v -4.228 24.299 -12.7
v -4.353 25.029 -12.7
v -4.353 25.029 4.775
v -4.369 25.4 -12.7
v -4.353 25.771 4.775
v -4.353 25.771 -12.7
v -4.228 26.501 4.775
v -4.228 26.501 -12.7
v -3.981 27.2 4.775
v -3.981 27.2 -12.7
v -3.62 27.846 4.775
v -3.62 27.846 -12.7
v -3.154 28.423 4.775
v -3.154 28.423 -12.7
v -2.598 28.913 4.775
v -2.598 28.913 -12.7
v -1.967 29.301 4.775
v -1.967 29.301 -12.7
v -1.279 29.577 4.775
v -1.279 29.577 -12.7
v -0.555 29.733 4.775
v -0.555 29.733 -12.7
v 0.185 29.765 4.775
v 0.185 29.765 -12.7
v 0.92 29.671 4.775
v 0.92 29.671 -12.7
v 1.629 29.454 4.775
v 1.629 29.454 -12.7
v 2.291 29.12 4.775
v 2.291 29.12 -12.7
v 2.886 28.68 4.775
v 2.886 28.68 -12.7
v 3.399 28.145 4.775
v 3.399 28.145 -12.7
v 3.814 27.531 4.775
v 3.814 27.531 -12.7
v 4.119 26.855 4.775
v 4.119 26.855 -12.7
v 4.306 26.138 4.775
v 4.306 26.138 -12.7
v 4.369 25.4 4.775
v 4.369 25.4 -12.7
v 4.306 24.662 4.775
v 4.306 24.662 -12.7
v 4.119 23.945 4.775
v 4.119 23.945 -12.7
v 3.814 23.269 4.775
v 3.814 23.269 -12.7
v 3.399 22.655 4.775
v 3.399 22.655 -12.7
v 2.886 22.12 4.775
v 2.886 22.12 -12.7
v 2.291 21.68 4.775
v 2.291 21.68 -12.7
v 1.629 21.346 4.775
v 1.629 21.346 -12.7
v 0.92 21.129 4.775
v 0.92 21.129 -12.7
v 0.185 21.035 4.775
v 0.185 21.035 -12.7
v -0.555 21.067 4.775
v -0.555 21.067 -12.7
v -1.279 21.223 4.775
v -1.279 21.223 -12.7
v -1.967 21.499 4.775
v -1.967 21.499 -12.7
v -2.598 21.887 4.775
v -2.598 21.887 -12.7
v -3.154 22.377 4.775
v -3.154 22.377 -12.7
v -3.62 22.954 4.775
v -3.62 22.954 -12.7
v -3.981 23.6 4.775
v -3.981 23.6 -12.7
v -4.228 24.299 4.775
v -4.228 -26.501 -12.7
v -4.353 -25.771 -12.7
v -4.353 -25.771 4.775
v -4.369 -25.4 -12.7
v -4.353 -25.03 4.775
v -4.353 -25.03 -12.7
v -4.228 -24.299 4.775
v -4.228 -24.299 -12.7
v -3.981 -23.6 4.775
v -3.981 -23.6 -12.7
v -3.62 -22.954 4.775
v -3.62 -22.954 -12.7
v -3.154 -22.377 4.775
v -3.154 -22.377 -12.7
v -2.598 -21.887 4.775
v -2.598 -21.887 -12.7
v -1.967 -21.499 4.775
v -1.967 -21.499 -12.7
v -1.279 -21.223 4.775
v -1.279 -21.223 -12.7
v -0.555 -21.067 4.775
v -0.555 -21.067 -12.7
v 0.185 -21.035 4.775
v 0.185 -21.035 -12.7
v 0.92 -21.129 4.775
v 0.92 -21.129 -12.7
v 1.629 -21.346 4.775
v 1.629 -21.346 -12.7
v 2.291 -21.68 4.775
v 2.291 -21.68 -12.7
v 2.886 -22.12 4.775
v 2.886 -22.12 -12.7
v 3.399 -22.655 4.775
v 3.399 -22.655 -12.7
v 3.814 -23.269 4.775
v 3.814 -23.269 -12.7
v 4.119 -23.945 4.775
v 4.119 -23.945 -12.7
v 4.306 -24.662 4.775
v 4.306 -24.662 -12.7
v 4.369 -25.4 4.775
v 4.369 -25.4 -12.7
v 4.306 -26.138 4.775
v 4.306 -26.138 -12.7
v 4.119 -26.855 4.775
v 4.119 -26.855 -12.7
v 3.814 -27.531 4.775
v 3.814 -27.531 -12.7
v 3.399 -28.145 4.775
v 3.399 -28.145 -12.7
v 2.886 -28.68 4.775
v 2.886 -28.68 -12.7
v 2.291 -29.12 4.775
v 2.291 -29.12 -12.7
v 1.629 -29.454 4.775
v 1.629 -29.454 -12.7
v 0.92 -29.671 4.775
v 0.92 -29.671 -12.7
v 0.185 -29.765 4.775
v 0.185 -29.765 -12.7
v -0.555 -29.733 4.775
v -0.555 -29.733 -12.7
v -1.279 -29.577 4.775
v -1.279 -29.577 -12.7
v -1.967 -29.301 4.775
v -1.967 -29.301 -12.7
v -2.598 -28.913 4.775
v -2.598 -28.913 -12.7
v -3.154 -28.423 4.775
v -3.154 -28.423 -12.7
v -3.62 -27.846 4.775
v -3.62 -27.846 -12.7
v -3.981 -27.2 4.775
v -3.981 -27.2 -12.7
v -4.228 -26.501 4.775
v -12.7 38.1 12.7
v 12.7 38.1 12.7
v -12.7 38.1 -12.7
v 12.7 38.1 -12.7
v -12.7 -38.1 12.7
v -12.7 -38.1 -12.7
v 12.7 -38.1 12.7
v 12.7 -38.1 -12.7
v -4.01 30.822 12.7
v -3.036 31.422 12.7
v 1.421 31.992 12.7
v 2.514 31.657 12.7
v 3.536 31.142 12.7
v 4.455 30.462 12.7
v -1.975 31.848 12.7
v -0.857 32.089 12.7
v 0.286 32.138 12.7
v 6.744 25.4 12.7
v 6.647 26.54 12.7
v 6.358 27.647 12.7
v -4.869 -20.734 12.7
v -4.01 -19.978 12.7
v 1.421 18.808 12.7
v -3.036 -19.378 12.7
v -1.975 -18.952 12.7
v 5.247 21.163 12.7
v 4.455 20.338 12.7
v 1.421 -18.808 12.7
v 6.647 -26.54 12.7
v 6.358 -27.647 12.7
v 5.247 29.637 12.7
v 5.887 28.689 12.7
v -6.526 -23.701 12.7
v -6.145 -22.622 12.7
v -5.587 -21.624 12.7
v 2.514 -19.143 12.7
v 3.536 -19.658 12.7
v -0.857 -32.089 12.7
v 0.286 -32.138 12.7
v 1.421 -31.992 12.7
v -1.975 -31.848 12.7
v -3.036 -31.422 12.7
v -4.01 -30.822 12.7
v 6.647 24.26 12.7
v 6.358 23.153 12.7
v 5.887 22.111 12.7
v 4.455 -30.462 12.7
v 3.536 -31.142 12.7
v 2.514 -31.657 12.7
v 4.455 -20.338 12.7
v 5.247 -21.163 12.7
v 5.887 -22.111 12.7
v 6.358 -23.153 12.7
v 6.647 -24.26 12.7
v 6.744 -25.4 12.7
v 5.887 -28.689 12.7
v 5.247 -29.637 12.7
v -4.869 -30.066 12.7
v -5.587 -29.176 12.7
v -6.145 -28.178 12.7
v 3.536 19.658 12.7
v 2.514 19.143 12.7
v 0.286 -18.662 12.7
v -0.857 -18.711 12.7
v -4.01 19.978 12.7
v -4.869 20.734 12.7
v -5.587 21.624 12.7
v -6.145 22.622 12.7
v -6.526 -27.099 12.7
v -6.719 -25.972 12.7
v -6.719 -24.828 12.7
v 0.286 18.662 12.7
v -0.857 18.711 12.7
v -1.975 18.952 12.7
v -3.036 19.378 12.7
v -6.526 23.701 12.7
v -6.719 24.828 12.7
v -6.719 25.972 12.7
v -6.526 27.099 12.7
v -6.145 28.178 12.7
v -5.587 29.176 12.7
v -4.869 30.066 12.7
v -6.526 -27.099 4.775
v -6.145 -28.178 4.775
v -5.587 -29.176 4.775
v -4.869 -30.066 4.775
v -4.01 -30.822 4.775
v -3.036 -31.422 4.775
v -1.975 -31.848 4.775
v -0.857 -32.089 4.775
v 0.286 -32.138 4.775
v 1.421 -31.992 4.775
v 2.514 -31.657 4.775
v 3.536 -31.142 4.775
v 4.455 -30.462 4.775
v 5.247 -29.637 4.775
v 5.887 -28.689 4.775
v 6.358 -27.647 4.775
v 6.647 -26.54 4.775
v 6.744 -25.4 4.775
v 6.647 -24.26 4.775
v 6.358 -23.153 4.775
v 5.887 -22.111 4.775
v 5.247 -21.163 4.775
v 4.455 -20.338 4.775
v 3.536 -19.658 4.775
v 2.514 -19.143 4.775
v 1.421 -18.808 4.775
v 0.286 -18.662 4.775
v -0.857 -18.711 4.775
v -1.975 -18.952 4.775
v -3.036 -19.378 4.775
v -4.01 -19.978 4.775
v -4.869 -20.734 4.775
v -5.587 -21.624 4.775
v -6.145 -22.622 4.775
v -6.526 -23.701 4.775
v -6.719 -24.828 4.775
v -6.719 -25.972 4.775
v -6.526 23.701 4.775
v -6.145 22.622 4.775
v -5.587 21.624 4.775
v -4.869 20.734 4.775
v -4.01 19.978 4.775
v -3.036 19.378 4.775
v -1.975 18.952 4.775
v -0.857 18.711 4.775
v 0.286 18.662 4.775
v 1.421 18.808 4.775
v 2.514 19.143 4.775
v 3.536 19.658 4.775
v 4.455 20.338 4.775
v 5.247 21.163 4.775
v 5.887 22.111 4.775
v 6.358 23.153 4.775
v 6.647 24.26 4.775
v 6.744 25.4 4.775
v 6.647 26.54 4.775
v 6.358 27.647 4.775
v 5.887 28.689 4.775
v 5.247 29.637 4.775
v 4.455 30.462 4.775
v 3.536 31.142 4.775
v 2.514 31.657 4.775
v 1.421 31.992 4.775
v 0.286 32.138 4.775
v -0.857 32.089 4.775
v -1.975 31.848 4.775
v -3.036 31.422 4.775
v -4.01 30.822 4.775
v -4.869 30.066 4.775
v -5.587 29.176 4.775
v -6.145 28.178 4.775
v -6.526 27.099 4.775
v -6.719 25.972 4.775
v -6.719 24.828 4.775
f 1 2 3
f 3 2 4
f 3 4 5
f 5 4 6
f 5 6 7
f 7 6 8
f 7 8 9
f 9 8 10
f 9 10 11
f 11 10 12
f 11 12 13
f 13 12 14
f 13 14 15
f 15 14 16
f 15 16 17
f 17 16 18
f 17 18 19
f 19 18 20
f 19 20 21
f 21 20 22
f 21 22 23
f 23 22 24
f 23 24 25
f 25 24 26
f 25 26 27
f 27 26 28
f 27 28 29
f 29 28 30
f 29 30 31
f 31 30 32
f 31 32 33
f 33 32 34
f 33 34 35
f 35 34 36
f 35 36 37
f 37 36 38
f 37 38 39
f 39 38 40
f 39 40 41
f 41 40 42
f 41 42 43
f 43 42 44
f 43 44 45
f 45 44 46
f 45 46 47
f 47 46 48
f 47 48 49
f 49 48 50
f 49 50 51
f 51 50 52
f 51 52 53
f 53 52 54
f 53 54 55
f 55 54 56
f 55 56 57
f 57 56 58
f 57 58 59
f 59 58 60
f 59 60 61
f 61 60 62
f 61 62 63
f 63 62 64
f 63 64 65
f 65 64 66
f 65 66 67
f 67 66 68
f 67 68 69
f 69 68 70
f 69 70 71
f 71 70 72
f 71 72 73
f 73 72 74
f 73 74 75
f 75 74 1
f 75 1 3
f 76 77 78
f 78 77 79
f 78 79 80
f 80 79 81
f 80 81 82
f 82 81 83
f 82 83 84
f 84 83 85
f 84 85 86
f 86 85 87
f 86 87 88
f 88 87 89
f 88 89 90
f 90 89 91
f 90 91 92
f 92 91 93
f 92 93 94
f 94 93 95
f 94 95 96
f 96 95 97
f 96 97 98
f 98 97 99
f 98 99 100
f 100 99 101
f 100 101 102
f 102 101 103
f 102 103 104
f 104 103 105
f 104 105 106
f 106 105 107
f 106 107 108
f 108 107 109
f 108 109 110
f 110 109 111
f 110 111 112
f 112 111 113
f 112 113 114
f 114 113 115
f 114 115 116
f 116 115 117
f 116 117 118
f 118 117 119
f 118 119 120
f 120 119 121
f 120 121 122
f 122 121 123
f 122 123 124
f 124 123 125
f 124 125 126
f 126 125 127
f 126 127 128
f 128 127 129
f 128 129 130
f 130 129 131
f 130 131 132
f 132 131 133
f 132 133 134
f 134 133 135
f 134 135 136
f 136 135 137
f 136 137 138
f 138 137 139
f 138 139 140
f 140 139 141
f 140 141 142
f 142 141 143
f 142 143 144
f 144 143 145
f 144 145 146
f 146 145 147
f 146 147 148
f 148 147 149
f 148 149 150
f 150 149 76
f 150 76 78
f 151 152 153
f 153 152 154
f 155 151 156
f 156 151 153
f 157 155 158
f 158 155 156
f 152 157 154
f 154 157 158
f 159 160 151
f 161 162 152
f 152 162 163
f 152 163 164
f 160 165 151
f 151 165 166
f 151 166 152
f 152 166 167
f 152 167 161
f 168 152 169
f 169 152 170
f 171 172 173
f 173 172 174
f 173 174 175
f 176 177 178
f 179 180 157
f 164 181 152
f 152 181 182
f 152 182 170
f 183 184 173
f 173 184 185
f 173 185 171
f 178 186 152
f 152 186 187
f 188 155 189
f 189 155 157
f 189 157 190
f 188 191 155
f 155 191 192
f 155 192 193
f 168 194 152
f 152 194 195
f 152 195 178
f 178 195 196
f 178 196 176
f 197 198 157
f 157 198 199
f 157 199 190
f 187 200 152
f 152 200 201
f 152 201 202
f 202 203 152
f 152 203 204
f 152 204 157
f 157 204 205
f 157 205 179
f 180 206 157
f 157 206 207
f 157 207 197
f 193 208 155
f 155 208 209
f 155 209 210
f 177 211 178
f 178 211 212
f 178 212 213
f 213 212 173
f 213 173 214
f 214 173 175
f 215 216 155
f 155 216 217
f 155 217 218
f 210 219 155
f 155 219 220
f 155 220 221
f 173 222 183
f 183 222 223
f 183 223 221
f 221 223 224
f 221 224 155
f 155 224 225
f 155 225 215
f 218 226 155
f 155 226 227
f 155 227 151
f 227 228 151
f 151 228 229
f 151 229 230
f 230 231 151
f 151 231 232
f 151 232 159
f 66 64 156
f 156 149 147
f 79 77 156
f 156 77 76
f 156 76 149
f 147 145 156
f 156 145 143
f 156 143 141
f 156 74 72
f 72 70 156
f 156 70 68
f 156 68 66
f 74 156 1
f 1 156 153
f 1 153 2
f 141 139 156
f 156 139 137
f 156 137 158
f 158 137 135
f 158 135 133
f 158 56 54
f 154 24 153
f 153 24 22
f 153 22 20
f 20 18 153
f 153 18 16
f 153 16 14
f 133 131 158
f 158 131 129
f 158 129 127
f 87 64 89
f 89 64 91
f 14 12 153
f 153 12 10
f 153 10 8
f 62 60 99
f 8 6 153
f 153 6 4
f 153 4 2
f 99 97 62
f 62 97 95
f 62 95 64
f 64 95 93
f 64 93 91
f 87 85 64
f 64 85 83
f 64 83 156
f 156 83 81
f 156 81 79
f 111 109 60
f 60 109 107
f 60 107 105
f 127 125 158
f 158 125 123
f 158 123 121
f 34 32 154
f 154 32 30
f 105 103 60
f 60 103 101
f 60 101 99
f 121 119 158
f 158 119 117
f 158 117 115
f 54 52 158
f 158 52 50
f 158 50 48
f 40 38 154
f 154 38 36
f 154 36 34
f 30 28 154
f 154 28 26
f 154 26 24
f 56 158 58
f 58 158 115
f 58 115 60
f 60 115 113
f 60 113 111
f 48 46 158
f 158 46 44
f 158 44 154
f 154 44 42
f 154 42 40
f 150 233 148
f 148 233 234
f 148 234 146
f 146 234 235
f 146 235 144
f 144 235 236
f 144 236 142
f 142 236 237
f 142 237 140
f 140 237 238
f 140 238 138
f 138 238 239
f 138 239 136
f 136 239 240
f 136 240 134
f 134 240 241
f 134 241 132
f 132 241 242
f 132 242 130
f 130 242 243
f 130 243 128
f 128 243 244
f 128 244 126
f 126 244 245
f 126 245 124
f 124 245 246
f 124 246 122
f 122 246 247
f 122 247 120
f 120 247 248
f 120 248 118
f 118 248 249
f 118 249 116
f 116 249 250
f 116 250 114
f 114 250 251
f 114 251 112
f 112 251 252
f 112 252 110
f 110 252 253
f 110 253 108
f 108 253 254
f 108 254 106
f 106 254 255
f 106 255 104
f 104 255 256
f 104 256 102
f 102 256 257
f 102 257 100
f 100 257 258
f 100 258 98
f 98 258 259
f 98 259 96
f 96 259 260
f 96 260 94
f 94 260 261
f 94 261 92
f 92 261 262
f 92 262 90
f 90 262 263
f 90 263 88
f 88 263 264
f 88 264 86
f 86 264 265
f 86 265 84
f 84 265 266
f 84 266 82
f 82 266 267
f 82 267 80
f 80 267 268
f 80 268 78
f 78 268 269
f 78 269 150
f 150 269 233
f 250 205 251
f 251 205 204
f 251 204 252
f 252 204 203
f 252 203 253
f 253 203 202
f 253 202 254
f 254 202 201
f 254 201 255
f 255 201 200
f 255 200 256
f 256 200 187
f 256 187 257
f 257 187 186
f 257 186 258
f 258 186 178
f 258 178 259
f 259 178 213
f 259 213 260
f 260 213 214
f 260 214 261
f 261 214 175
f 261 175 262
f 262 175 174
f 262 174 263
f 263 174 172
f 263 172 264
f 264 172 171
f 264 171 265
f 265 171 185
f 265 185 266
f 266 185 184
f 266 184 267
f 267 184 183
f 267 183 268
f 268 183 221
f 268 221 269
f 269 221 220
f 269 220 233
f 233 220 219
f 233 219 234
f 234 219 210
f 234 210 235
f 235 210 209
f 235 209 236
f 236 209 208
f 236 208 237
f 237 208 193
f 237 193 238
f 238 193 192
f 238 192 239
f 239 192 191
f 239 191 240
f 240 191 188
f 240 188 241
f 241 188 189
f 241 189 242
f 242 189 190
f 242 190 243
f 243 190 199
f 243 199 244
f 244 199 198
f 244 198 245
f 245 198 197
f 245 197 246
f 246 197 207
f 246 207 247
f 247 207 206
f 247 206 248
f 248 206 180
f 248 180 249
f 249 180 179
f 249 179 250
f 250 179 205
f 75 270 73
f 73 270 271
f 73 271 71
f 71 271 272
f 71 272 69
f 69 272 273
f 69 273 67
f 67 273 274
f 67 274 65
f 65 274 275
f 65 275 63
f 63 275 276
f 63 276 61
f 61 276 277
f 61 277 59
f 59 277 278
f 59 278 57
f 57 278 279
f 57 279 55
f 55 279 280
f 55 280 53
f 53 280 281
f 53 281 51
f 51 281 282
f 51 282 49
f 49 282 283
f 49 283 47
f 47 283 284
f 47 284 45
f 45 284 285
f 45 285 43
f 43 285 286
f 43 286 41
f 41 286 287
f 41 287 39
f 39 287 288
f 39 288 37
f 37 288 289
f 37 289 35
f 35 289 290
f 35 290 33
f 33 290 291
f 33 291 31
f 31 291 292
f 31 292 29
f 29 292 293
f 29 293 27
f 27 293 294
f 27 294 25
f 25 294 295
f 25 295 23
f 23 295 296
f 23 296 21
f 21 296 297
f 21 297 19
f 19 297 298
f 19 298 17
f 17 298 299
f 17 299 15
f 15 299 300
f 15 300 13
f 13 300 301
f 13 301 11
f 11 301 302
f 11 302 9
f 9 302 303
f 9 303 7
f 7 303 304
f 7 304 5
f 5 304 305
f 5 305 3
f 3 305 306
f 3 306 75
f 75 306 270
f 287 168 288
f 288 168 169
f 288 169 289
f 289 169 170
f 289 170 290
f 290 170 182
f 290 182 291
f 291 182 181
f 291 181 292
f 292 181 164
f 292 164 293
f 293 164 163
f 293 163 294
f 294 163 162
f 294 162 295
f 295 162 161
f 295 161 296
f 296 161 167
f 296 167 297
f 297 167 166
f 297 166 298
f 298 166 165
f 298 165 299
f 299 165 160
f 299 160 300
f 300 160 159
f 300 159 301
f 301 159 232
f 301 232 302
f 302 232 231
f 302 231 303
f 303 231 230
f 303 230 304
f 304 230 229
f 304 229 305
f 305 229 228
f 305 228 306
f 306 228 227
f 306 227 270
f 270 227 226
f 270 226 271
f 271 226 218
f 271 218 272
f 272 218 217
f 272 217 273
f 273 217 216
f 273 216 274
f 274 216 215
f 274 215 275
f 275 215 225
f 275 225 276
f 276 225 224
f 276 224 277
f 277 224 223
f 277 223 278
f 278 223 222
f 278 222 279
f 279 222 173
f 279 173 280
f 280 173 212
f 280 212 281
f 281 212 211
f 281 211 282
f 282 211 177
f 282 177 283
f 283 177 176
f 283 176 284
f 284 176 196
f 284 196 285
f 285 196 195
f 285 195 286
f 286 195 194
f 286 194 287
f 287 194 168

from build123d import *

# Parameters (mm, degrees)
SKETCH1_W                                         = 76.2
SKETCH1_H                                         = 25.4
BOSS_EXTRUDE1_DEPTH                               = 12.7
CBORE_FOR_5_16_SOCKET_HEAD_CAP_SCREW1_D           = 8.7376
CBORE_FOR_5_16_SOCKET_HEAD_CAP_SCREW1_DEPTH       = 25.4
CBORE_FOR_5_16_SOCKET_HEAD_CAP_SCREW1_CBORE_D     = 13.4874
CBORE_FOR_5_16_SOCKET_HEAD_CAP_SCREW1_CBORE_DEPTH = 7.9248
CBORE_FOR_5_16_SOCKET_HEAD_CAP_SCREW1_TIP         = 2.625039872


with BuildPart() as part:
    # Sketch1 → Boss-Extrude1 (new, symmetric)
    with BuildSketch(Plane(origin=(0, 0, 0), x_dir=(0, 1, 0), z_dir=(0, 0, 1))):
        Rectangle(SKETCH1_W, SKETCH1_H)
    extrude(amount=BOSS_EXTRUDE1_DEPTH, both=True)

    # CBORE for 5/16 Socket Head Cap Screw1
    with Locations(Plane.XY.offset(12.7)):
        with Locations((0, -25.4), (0, 25.4)):
            CounterBoreHole(CBORE_FOR_5_16_SOCKET_HEAD_CAP_SCREW1_D / 2, CBORE_FOR_5_16_SOCKET_HEAD_CAP_SCREW1_CBORE_D / 2, CBORE_FOR_5_16_SOCKET_HEAD_CAP_SCREW1_CBORE_DEPTH, depth=CBORE_FOR_5_16_SOCKET_HEAD_CAP_SCREW1_DEPTH)
            with Locations((0, 0, -(CBORE_FOR_5_16_SOCKET_HEAD_CAP_SCREW1_DEPTH + CBORE_FOR_5_16_SOCKET_HEAD_CAP_SCREW1_TIP / 2))):  # 118° drill point
                Cone(0, CBORE_FOR_5_16_SOCKET_HEAD_CAP_SCREW1_D / 2, CBORE_FOR_5_16_SOCKET_HEAD_CAP_SCREW1_TIP, mode=Mode.SUBTRACT)


solid = part.part
